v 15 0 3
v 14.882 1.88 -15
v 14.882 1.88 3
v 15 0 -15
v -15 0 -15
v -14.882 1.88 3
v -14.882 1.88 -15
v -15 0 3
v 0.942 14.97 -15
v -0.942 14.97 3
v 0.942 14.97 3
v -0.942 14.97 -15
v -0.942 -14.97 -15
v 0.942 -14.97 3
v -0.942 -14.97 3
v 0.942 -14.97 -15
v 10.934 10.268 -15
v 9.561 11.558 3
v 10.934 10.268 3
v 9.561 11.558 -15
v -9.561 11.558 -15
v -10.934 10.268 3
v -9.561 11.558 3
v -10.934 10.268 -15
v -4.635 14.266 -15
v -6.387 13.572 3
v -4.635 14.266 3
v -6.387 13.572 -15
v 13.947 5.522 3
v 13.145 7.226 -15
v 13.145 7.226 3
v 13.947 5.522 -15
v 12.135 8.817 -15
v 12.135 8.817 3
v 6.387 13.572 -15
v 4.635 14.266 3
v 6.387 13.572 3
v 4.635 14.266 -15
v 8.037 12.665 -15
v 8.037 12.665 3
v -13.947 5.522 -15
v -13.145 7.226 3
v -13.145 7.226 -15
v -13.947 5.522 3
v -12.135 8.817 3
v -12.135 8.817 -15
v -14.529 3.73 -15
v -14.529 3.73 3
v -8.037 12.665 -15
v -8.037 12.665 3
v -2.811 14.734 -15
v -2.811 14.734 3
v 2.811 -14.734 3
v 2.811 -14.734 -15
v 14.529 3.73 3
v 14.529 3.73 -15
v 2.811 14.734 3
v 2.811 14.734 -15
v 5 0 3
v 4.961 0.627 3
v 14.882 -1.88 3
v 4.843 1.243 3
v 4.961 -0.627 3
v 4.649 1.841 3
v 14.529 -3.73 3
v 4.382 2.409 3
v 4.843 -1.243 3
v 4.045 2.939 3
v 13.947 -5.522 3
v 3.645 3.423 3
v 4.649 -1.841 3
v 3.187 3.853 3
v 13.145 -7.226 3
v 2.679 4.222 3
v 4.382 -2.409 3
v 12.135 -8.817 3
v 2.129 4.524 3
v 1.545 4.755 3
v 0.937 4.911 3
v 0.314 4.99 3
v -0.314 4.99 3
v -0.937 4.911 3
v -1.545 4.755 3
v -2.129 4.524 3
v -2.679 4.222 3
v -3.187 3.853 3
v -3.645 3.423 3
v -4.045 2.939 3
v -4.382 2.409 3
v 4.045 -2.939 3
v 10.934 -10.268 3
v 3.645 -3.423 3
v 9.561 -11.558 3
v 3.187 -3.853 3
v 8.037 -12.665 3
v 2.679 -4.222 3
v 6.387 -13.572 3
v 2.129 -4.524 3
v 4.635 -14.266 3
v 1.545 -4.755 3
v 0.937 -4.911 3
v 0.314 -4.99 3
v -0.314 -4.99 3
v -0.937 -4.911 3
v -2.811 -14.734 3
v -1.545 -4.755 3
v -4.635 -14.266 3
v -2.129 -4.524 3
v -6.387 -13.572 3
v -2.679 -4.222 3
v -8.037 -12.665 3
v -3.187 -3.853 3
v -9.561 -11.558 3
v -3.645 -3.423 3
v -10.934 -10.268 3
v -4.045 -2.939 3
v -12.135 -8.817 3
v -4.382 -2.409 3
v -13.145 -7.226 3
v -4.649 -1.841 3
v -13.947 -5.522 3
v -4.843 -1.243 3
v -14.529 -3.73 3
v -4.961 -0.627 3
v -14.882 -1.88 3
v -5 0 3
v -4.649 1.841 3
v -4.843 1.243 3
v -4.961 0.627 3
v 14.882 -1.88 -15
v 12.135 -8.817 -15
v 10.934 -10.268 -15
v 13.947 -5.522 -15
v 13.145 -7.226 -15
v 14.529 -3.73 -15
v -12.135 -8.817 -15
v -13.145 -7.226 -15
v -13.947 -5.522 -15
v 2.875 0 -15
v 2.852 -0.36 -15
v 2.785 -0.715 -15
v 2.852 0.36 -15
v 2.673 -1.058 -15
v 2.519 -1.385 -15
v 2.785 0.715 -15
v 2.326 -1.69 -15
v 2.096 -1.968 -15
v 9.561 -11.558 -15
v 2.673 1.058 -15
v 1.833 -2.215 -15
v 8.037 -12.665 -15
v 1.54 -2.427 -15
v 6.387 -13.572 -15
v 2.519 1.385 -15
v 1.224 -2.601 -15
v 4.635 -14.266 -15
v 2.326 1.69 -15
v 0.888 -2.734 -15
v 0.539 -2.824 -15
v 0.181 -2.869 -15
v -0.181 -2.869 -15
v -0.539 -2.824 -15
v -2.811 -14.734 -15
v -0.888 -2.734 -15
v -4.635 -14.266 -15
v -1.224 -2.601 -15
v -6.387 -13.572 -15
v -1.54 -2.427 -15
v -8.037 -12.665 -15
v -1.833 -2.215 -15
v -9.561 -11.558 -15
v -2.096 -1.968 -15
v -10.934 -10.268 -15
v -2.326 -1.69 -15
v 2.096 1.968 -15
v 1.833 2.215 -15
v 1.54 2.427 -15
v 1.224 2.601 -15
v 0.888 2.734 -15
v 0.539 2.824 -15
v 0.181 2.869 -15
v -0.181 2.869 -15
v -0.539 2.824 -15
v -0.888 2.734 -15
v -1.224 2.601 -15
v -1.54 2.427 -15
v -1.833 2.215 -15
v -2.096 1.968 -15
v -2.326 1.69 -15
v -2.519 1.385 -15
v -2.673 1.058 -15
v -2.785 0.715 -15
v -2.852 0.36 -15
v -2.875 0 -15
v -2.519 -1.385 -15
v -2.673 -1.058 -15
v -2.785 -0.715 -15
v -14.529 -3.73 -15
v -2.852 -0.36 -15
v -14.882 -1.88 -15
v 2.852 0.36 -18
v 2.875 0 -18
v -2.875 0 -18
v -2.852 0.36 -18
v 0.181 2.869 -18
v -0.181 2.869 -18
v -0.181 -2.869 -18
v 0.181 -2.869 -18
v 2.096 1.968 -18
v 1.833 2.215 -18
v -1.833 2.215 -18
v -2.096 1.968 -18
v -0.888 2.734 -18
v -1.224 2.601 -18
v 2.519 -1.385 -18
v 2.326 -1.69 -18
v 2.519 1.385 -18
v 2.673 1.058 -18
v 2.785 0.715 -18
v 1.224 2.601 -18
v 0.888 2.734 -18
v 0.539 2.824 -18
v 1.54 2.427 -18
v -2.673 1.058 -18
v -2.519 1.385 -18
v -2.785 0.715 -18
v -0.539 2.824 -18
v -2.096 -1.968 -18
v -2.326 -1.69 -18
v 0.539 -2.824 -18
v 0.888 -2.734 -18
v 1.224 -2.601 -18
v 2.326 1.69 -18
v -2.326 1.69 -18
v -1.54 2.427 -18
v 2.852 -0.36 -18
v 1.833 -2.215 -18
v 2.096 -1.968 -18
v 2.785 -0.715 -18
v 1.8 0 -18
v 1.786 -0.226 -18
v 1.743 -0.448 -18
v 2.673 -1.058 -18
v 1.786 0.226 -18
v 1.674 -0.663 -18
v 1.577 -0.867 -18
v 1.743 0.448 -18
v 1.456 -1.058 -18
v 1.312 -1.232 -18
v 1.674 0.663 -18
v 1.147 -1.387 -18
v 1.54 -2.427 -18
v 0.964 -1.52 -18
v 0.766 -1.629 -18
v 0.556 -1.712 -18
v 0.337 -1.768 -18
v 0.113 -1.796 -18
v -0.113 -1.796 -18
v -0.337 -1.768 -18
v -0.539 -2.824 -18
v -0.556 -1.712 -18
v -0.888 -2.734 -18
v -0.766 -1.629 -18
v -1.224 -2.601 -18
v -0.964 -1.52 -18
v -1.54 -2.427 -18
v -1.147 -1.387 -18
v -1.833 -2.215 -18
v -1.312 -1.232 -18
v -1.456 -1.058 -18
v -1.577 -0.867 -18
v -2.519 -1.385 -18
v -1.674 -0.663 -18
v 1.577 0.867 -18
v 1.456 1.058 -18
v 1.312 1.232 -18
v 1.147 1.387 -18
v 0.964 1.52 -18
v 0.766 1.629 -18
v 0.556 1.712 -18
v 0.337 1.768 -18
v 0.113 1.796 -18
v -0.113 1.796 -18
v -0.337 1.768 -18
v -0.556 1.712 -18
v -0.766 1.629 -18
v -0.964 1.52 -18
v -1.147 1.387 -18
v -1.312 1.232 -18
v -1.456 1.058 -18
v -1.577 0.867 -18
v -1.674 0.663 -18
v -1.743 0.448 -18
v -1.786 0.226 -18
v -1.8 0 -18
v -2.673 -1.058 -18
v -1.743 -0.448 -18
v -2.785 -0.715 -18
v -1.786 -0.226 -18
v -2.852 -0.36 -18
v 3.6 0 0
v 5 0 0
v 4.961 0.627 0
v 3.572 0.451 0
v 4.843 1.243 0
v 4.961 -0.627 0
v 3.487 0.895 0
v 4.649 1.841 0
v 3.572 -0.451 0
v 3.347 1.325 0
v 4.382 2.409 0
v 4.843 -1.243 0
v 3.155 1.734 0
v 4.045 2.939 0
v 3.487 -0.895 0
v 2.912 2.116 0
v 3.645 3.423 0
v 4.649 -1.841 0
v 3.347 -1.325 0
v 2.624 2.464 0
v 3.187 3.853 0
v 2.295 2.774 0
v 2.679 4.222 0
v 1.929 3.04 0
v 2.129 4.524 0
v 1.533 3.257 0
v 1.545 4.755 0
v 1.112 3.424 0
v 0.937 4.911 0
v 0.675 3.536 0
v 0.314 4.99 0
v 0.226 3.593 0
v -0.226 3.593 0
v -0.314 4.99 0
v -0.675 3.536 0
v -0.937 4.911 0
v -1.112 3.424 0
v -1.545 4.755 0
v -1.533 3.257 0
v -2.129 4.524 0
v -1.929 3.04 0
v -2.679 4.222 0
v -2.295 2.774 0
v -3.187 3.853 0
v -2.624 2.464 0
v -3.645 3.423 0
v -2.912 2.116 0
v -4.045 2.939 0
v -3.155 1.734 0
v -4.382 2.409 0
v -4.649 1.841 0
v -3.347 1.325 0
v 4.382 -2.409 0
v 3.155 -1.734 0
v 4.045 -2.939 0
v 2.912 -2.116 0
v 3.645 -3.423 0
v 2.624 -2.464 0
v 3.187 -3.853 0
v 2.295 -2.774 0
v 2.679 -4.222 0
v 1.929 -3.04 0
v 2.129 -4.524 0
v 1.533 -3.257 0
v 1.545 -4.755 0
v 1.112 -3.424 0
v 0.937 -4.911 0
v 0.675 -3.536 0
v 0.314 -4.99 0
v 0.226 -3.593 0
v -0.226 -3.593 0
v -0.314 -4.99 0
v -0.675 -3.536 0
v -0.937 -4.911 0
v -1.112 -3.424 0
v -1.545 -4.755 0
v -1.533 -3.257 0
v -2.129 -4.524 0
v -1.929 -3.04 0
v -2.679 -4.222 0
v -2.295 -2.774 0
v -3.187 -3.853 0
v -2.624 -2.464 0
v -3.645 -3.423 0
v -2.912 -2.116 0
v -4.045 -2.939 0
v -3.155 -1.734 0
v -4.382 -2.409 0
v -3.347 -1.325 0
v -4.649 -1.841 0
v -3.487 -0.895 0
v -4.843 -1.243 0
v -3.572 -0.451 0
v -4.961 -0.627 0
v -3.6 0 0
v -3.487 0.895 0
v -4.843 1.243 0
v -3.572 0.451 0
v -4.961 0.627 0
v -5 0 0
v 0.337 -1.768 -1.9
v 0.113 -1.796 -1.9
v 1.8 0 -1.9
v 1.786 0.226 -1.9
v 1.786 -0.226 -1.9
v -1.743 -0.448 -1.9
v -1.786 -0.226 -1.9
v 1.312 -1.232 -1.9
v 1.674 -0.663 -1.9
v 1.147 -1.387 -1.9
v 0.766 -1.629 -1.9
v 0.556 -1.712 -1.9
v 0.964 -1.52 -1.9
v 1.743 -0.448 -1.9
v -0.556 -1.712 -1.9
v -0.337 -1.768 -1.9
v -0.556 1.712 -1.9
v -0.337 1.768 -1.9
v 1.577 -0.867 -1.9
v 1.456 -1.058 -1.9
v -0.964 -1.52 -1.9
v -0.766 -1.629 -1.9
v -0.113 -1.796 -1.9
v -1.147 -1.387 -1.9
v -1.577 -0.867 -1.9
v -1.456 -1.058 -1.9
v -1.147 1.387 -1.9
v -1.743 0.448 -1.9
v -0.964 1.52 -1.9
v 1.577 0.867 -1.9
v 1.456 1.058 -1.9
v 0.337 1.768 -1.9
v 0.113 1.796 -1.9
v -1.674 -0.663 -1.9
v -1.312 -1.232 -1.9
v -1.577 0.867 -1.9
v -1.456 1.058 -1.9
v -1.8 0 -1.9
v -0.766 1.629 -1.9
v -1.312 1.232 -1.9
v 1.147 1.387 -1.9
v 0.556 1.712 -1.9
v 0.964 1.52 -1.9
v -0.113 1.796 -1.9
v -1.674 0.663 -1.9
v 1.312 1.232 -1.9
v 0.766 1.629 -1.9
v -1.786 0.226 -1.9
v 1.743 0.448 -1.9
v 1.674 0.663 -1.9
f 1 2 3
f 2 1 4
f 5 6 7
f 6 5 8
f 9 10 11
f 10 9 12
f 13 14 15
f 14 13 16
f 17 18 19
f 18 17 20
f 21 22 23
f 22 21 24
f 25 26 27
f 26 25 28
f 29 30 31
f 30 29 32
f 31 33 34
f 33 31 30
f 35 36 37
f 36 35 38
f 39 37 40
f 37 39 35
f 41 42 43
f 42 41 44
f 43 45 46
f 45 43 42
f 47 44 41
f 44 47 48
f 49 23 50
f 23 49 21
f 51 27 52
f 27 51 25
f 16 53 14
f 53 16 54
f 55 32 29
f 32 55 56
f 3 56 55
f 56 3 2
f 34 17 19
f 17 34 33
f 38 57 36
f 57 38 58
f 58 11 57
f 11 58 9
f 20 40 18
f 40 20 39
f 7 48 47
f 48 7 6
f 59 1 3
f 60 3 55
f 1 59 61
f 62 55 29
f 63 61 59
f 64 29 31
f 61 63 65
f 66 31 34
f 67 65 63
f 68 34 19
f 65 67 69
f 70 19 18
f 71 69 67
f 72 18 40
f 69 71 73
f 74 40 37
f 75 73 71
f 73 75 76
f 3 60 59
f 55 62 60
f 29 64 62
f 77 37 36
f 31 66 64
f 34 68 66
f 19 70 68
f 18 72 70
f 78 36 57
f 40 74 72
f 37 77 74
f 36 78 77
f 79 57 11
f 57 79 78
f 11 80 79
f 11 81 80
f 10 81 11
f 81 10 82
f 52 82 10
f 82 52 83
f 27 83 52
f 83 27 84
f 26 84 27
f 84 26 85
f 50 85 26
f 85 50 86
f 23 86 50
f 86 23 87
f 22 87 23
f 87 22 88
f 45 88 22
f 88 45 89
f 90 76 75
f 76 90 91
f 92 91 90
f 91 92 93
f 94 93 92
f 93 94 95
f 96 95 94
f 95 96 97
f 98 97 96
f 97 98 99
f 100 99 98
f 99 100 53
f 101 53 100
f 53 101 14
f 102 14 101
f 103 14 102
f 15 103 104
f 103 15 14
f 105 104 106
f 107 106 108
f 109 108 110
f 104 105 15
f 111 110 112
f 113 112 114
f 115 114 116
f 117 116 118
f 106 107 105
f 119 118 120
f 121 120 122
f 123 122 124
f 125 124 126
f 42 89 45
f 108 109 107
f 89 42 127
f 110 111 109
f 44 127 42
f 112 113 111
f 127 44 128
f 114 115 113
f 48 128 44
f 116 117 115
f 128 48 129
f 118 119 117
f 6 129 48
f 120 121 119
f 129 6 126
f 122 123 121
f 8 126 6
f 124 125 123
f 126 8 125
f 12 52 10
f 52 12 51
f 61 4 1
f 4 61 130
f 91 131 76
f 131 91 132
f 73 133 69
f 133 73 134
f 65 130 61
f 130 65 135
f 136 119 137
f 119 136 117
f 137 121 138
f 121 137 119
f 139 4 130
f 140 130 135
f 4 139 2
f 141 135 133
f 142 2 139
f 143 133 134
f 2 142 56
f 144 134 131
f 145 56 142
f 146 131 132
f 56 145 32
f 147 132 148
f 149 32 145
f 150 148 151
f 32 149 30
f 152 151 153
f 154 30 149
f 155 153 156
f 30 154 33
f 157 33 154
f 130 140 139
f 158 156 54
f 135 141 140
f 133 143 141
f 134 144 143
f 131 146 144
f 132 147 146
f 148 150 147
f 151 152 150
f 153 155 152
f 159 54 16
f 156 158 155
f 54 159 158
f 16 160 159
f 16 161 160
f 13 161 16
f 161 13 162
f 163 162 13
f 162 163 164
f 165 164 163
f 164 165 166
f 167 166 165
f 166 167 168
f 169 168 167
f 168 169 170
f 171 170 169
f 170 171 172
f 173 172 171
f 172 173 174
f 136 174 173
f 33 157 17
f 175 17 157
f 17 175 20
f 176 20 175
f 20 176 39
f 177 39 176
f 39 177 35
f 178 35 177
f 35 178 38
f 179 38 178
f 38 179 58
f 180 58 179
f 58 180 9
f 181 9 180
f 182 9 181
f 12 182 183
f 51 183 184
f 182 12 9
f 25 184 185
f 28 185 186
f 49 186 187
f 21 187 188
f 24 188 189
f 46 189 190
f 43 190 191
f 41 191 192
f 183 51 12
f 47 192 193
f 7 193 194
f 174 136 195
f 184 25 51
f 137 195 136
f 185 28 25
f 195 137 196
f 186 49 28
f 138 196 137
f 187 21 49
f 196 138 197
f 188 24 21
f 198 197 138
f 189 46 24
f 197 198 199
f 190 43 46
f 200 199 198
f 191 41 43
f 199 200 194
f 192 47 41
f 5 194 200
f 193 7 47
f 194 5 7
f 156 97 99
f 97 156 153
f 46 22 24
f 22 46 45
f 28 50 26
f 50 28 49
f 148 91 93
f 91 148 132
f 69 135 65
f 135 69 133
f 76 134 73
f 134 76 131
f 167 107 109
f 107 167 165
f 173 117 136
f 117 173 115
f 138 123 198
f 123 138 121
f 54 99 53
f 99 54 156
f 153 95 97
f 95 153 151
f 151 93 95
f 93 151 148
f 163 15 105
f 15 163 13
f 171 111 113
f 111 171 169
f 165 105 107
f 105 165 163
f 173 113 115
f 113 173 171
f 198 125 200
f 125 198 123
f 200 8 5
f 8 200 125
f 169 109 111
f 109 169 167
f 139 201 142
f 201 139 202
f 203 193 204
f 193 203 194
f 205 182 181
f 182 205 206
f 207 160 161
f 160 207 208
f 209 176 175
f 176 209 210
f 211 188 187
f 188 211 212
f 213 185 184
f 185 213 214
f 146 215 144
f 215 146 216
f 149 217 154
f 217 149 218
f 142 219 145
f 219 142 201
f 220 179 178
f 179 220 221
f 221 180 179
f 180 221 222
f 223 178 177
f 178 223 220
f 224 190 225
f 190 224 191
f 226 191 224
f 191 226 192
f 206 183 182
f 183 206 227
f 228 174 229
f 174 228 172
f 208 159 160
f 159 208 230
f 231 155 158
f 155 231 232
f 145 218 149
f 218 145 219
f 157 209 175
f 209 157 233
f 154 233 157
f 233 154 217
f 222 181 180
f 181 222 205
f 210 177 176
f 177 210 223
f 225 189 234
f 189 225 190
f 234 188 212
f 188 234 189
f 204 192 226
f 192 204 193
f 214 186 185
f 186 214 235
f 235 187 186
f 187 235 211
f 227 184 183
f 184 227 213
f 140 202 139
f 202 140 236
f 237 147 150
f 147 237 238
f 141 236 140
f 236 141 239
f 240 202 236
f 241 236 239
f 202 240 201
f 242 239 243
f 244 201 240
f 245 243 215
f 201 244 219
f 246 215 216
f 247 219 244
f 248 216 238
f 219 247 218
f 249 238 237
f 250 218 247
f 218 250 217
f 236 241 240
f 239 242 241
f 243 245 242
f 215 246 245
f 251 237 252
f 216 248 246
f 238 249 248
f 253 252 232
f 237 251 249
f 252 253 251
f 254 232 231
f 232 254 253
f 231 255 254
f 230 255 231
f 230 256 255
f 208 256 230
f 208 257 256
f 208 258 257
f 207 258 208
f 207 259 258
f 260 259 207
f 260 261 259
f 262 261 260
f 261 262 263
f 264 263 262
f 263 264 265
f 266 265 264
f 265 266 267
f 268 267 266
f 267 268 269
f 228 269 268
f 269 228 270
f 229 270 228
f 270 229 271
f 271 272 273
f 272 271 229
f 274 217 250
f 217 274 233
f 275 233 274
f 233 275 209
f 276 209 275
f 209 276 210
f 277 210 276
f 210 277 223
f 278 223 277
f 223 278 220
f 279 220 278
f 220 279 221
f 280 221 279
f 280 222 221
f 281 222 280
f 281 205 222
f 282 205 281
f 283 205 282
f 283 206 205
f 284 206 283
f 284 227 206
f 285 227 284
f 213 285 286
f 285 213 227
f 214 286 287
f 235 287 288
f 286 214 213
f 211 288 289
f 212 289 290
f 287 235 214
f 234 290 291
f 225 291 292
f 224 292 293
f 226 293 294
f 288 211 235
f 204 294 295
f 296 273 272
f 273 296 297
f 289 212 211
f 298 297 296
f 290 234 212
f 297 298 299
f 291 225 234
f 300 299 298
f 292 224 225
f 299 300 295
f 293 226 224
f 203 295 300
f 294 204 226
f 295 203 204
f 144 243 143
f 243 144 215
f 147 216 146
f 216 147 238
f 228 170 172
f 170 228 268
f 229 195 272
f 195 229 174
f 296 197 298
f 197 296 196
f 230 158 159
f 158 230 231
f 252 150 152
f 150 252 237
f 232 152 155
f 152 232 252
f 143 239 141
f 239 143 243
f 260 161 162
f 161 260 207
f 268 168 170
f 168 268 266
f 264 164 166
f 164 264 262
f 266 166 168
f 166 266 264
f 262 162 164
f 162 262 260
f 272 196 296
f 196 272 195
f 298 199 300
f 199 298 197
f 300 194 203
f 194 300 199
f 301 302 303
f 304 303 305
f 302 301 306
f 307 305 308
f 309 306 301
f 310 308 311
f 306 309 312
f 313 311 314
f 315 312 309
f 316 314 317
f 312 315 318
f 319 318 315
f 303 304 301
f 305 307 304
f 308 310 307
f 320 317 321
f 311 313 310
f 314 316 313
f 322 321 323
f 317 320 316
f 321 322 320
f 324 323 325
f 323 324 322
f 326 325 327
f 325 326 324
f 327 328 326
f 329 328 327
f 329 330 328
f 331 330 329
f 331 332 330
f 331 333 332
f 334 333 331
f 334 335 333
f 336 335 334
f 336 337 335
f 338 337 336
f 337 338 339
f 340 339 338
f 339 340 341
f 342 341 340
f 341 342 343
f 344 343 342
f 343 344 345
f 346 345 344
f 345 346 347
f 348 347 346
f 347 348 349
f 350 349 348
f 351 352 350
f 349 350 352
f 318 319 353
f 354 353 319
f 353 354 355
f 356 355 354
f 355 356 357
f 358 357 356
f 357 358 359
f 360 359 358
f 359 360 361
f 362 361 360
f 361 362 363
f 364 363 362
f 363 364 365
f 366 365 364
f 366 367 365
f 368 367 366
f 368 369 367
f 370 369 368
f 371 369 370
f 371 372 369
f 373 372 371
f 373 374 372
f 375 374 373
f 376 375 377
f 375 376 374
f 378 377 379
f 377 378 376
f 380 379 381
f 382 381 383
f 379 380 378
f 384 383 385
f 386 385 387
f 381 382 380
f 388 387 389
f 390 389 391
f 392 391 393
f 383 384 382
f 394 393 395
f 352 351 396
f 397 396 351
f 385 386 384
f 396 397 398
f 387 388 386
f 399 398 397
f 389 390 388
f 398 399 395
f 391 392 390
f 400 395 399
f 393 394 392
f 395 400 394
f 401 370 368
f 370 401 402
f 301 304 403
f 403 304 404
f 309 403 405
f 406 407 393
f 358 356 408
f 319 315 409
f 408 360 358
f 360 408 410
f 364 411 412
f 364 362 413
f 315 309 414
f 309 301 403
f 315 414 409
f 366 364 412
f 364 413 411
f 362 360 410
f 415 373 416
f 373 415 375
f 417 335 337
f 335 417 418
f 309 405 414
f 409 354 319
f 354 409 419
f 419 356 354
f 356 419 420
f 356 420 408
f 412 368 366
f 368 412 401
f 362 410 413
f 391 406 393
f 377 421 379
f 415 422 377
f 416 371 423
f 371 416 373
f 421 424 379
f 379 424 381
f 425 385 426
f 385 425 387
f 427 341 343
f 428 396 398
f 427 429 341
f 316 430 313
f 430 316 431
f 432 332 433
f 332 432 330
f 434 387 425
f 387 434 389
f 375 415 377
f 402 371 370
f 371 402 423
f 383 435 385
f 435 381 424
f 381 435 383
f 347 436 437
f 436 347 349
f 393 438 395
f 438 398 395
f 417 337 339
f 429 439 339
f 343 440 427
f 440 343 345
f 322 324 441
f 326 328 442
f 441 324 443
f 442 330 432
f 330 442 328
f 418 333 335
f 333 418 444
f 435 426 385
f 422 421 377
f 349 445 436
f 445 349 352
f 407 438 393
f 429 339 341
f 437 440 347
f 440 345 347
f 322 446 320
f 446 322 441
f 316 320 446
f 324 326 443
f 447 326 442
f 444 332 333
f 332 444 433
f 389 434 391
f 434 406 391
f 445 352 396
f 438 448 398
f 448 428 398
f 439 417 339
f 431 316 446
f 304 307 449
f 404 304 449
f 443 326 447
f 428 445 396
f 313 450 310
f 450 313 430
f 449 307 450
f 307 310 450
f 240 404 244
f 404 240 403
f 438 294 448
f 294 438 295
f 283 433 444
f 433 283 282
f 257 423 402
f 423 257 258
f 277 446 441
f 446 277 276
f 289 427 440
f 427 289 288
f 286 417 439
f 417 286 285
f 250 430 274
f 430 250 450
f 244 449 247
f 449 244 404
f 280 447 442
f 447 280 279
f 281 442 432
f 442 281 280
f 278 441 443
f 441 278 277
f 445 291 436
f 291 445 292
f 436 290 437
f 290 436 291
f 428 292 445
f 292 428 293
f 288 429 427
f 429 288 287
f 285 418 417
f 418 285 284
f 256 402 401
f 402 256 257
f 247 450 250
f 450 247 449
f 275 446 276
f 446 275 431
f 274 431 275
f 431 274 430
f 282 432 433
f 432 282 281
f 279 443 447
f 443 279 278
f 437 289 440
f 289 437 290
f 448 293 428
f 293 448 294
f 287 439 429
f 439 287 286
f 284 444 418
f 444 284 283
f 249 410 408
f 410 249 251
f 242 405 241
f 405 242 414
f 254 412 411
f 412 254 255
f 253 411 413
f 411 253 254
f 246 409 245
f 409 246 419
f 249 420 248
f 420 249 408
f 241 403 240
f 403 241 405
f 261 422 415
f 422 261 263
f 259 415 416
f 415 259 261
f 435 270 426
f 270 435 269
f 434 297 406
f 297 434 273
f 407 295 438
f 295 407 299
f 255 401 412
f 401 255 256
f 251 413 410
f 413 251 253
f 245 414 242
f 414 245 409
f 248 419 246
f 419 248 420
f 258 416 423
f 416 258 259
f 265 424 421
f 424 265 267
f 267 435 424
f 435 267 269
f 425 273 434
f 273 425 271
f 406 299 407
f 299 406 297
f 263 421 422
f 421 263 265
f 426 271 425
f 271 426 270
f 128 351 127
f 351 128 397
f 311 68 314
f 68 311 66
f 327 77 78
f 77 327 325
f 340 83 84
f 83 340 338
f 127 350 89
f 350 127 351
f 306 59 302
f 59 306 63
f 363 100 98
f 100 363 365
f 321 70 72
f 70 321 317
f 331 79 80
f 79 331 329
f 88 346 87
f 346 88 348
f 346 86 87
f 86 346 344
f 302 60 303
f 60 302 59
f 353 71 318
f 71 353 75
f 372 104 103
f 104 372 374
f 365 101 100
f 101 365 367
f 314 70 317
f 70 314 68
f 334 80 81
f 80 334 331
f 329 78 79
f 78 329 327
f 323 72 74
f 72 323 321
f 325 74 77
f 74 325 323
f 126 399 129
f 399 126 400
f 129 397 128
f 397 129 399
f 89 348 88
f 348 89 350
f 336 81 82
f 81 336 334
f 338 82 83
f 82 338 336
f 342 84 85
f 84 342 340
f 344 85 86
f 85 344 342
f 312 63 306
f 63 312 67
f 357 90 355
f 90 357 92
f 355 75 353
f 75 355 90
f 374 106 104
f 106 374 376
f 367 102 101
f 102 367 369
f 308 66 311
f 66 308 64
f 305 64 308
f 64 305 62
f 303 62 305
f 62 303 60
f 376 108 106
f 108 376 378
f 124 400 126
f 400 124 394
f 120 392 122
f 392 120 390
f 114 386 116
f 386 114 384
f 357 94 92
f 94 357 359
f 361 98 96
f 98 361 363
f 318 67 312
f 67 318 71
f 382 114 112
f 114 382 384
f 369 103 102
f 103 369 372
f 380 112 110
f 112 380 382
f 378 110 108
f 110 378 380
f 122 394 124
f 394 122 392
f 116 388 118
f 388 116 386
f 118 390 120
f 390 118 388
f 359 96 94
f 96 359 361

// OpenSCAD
$fn = 50;


difference() {
	union() {
		translate(v = [0, 0, -15.0000000000]) {
			cylinder(h = 18, r = 15.0000000000);
		}
		#translate(v = [0, 0, -18.0000000000]) {
			cylinder(h = 18, r = 2.8750000000);
		}
	}
	union() {
		translate(v = [0, 0, 0]) {
			rotate(a = [0, 0, 0]) {
				difference() {
					union() {
						translate(v = [0, 0, -18.0000000000]) {
							cylinder(h = 18, r = 1.5000000000);
						}
						translate(v = [0, 0, -1.9000000000]) {
							cylinder(h = 1.9000000000, r1 = 1.8000000000, r2 = 3.6000000000);
						}
						translate(v = [0, 0, -18.0000000000]) {
							cylinder(h = 18, r = 1.8000000000);
						}
						translate(v = [0, 0, -18.0000000000]) {
							cylinder(h = 18, r = 1.5000000000);
						}
					}
					union();
				}
			}
		}
		#cylinder(h = 3, r = 5.0000000000);
	}
}
